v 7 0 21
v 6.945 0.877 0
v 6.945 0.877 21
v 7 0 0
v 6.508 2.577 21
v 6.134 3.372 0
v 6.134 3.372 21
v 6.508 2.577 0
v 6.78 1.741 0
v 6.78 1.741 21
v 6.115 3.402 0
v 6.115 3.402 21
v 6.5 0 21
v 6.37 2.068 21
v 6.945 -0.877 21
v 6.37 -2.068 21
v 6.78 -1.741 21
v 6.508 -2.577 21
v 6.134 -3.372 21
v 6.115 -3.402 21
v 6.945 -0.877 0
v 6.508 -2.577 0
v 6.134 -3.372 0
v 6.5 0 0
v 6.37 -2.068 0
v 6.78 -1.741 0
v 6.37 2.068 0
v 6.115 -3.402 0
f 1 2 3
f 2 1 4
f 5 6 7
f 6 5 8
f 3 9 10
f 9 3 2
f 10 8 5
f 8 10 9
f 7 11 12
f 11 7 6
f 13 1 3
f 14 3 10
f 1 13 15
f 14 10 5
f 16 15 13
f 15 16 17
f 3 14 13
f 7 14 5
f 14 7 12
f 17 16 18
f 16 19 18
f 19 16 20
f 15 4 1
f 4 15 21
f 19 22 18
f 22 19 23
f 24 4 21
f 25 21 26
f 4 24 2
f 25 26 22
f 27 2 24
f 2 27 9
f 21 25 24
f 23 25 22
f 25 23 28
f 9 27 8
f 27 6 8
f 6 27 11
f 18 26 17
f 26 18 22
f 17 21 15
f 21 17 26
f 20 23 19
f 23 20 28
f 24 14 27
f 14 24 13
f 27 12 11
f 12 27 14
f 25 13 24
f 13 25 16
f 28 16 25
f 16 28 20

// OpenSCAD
$fn = 50;


difference() {
	union() {
		cylinder(h = 21, r = 7.0000000000);
		translate(v = [-13.0000000000, 0, 0]) {
			cylinder(h = 21, r = 7.0000000000);
		}
	}
	union() {
		cylinder(h = 21, r = 3.2500000000);
		cylinder(h = 21, r = 1.8000000000);
		cylinder(h = 21, r = 1.8000000000);
		cylinder(h = 21, r = 1.8000000000);
		translate(v = [-17.5000000000, 0, 0]) {
			hull() {
				translate(v = [-3.7500000000, 0.0000000000, 0]) {
					cylinder(h = 21, r = 10.5000000000);
				}
				translate(v = [3.7500000000, 0.0000000000, 0]) {
					cylinder(h = 21, r = 10.5000000000);
				}
				translate(v = [-3.7500000000, -0.0000000000, 0]) {
					cylinder(h = 21, r = 10.5000000000);
				}
				translate(v = [3.7500000000, -0.0000000000, 0]) {
					cylinder(h = 21, r = 10.5000000000);
				}
			}
		}
		translate(v = [-10.0000000000, 0, 0.0000000000]) {
			cylinder(h = 21, r = 16.5000000000);
		}
	}
}
